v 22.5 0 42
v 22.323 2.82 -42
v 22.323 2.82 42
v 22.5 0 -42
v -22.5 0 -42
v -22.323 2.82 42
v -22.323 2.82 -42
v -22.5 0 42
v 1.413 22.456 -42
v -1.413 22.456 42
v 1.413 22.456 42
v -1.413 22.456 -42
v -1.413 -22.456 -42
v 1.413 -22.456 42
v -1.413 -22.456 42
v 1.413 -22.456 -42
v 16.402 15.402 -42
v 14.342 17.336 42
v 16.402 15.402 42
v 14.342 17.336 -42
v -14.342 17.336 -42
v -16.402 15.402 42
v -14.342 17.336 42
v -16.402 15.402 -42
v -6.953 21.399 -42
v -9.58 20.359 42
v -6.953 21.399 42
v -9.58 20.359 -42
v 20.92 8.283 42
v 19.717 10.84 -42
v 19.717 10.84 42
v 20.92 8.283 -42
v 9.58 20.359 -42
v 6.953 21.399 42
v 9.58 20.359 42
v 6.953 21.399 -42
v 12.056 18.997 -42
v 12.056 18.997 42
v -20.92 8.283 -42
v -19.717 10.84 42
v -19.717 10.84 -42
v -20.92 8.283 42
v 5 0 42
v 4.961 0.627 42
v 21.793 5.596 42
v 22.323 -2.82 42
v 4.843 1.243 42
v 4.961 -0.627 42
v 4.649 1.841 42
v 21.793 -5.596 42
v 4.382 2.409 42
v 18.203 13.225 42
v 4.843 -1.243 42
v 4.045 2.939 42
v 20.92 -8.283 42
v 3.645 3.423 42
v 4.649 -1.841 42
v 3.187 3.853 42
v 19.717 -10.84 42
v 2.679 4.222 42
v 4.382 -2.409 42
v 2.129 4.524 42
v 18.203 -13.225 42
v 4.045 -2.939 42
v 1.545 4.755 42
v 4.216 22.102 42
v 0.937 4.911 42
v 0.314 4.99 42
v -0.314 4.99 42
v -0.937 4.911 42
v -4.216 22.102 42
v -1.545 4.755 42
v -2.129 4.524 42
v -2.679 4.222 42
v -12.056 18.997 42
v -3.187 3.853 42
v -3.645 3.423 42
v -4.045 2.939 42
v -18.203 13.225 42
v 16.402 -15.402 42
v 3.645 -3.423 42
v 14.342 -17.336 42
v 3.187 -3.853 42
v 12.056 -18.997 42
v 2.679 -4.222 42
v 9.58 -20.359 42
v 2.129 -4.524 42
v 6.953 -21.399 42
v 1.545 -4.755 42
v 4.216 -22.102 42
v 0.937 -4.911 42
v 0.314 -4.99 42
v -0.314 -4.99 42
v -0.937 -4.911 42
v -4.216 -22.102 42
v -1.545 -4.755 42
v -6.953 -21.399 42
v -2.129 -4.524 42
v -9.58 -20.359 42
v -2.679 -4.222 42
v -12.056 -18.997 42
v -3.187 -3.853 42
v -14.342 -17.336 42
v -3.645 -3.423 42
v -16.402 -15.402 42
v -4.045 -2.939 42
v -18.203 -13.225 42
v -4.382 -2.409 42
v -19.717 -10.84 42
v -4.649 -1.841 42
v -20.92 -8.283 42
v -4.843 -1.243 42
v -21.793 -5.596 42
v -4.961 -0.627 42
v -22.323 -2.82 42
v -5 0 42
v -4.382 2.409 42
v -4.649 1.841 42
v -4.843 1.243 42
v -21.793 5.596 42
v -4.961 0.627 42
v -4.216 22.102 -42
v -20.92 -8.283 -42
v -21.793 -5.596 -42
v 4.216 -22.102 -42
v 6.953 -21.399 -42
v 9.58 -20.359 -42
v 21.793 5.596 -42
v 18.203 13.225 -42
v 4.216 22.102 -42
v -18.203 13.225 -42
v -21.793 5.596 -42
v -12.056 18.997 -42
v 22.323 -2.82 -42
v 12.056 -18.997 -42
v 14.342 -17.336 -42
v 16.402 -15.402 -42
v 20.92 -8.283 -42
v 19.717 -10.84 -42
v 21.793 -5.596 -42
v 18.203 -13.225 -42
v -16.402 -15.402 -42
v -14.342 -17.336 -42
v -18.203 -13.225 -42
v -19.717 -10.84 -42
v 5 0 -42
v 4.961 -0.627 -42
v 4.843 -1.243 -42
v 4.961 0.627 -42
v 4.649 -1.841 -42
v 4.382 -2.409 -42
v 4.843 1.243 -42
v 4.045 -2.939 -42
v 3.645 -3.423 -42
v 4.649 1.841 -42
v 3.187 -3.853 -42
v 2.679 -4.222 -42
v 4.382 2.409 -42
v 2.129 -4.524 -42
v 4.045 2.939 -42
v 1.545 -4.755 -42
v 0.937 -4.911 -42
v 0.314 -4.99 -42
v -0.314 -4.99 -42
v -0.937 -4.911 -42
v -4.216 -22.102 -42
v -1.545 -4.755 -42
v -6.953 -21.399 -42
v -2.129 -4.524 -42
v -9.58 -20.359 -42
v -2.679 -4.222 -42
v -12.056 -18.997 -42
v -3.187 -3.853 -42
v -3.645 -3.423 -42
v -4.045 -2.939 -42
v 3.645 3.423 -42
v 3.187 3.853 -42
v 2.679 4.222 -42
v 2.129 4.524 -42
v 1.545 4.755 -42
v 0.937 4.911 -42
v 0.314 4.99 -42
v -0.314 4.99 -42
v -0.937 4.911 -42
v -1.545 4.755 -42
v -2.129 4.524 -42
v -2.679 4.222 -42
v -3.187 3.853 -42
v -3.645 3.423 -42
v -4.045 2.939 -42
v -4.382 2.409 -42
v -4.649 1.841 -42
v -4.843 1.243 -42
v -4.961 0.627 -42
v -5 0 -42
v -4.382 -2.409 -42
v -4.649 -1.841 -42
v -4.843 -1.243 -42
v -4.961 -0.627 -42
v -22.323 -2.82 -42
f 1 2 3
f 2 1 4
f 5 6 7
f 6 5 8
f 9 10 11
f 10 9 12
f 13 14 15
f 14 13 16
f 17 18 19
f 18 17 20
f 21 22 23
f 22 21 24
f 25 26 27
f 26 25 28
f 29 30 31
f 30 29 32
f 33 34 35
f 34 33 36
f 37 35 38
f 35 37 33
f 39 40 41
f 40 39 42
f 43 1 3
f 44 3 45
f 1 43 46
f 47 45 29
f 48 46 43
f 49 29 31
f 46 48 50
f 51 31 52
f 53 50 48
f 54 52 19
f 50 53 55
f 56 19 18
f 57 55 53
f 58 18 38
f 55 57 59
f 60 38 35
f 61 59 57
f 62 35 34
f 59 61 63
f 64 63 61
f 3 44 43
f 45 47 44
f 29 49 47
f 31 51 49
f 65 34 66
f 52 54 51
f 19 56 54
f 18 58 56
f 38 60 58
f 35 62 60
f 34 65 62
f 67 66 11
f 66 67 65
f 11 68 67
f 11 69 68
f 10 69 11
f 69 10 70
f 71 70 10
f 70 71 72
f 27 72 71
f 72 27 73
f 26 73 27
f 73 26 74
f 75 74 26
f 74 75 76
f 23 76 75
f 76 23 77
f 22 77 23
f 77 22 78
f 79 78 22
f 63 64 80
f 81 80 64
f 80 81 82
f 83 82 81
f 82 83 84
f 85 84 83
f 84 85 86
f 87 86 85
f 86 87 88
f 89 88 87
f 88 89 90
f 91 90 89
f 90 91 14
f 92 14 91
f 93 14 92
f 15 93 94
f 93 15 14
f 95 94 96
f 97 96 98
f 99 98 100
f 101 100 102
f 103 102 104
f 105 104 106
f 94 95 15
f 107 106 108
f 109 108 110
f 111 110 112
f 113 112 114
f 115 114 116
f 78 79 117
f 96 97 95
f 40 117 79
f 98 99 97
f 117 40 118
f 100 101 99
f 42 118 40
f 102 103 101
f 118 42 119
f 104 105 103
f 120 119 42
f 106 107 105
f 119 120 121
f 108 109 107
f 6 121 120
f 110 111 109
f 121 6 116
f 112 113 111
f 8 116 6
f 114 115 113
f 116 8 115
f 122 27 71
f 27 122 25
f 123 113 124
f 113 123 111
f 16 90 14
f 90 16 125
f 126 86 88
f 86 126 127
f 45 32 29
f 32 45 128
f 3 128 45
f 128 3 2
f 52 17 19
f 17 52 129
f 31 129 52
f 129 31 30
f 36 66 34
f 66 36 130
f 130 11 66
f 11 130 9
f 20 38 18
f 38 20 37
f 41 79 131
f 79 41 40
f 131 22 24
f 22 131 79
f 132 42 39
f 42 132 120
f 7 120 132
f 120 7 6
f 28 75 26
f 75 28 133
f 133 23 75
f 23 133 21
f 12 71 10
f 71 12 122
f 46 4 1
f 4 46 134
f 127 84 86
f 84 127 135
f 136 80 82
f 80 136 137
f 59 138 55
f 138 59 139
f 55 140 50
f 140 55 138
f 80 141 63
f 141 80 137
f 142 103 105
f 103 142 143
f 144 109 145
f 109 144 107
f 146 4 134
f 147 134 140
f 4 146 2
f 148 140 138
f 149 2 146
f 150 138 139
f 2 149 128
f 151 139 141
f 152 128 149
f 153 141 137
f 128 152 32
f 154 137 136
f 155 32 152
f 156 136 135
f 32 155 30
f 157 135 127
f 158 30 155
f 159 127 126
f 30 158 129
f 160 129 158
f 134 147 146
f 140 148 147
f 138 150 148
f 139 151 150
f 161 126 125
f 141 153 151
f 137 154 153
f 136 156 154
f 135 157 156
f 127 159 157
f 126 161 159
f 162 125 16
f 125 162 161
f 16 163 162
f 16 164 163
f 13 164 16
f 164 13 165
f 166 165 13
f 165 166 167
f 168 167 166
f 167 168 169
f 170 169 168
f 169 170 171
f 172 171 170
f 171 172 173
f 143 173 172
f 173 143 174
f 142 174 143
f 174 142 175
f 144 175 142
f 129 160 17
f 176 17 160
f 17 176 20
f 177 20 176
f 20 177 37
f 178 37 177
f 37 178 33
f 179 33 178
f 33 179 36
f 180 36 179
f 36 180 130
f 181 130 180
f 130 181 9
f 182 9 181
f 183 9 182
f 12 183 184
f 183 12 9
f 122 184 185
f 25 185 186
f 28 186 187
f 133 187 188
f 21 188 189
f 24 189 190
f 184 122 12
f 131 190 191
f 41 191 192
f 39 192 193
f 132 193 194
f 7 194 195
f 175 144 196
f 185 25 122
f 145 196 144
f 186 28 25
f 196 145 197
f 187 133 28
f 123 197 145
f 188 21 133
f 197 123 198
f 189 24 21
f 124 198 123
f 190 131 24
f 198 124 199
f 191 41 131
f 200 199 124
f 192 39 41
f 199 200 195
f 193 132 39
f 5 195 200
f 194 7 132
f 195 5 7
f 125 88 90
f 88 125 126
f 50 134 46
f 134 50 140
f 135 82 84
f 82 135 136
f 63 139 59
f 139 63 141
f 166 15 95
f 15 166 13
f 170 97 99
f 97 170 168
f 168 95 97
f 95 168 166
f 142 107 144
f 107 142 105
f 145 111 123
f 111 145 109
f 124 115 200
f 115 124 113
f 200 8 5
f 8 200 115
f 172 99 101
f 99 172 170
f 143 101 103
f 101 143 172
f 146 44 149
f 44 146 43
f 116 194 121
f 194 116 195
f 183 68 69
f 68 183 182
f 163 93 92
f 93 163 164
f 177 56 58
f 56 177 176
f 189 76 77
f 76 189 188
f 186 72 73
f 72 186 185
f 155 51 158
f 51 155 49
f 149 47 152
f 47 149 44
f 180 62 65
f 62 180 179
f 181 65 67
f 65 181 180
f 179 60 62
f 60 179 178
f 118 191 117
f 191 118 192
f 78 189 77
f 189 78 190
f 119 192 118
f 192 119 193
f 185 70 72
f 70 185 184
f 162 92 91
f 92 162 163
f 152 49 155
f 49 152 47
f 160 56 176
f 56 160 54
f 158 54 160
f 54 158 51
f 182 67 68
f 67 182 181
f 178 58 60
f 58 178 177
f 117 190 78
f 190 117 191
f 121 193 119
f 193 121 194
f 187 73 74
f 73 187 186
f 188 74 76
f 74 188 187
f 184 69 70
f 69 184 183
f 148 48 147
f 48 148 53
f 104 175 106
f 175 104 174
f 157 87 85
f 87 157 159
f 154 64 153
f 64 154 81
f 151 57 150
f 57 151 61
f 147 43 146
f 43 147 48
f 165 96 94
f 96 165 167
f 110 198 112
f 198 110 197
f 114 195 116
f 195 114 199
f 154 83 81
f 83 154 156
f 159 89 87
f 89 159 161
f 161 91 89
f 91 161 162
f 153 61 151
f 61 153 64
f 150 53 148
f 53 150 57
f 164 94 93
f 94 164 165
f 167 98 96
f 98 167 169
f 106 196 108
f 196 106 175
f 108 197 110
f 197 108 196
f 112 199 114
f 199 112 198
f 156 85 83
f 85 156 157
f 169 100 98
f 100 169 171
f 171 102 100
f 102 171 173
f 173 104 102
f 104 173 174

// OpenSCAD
$fn = 50;


difference() {
	union() {
		translate(v = [0, 0, -42.0000000000]) {
			cylinder(h = 84, r = 22.5000000000);
		}
	}
	union() {
		translate(v = [0, 0, -100.0000000000]) {
			cylinder(h = 200, r = 5);
		}
	}
}
